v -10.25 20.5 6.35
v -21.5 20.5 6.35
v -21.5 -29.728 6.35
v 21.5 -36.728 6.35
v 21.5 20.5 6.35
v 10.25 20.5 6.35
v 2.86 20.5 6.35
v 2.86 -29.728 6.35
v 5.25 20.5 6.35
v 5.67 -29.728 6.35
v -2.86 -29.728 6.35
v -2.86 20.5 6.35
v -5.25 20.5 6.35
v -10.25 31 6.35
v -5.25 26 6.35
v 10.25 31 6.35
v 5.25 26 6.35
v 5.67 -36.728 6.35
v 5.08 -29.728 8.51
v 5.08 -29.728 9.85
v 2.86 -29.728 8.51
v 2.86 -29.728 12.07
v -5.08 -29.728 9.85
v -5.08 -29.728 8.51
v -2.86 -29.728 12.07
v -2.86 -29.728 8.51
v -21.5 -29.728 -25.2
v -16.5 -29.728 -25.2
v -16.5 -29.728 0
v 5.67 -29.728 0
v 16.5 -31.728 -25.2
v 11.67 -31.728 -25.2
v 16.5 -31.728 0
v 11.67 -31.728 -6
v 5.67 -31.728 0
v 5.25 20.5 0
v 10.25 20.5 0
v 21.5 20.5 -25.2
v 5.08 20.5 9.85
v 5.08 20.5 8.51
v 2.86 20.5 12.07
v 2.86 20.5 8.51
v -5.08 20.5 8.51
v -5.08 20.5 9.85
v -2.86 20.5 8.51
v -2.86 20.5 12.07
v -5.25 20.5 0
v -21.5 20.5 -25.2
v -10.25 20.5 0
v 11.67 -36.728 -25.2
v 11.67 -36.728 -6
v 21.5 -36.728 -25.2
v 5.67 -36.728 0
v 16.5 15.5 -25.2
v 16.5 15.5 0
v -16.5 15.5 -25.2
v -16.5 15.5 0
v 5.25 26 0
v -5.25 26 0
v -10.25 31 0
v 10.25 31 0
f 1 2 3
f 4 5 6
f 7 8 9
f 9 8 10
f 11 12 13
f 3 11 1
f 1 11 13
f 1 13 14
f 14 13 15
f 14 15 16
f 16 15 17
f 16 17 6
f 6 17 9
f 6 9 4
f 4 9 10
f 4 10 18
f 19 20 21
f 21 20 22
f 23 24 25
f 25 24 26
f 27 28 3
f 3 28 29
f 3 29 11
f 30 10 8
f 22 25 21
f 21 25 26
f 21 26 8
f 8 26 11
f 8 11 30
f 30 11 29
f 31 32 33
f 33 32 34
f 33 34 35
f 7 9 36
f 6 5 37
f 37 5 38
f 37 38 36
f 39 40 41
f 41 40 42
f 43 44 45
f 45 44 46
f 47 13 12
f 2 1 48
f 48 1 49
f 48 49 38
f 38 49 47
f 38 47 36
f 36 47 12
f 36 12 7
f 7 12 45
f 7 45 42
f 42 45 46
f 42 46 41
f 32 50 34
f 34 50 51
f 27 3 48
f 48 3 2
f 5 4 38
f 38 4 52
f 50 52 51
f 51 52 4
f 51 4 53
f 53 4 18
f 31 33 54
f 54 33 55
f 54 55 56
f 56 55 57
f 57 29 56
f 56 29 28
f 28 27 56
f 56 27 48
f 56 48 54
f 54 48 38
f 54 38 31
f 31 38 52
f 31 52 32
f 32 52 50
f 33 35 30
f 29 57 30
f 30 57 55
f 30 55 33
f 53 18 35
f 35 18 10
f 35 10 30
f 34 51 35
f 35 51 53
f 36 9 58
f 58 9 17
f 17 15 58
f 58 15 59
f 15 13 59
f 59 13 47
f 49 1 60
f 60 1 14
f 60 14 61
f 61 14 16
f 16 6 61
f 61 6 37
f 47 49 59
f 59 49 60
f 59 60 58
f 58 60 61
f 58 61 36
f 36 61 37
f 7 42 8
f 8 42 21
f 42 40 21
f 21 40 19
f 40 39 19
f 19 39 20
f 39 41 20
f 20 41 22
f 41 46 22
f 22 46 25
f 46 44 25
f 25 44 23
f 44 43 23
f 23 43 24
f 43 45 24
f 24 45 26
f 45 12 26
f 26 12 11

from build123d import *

# Parameters (mm, degrees)
BOSS_EXTRUDE1_DEPTH = 25.2
BOSS_EXTRUDE2_DEPTH = 6.35
BOSS_EXTRUDE3_START = 2
BOSS_EXTRUDE3_DEPTH = 5
SKETCH4_W           = 6
SKETCH4_H           = 2
BOSS_EXTRUDE4_DEPTH = 6.35
BOSS_EXTRUDE5_DEPTH = 50.228


with BuildPart() as part:
    # Sketch1 → Boss-Extrude1 (new body)
    with BuildSketch(Plane.XY):
        Polygon((-16.5, -29.728), (-16.5, 15.5), (16.5, 15.5), (16.5, -28.399762486), (16.5, -31.728), (11.67, -31.728), (11.67, -36.728), (21.5, -36.728), (21.5, 20.5), (-21.5, 20.5), (-21.5, -29.728), align=None)
    extrude(amount=-BOSS_EXTRUDE1_DEPTH)

    # Sketch2 → Boss-Extrude2 (add)
    with BuildSketch(Plane.XY):
        Polygon((-21.5, 20.5), (21.5, 20.5), (21.5, -29.728), (21.5, -36.728), (11.67, -36.728), (11.67, -29.728), (-21.5, -29.728), align=None)
    extrude(amount=BOSS_EXTRUDE2_DEPTH)

    # Sketch3 → Boss-Extrude3 (add)
    with BuildSketch(Plane.XZ.offset(29.728).offset(BOSS_EXTRUDE3_START)):
        Polygon((11.67, 6.35), (5.67, 6.35), (5.67, 0), (11.67, -6), align=None)
    extrude(amount=BOSS_EXTRUDE3_DEPTH)

    # Sketch4 → Boss-Extrude4 (add)
    with BuildSketch(Plane.XY.offset(6.35)):
        Polygon((-10.25, 20.5), (-5.25, 20.5), (-5.25, 26), (5.25, 26), (5.25, 20.5), (10.25, 20.5), (10.25, 31), (-10.25, 31), align=None)
        with Locations((8.67, -30.728)):
            Rectangle(SKETCH4_W, SKETCH4_H)
    extrude(amount=-BOSS_EXTRUDE4_DEPTH)

    # Sketch5 → Boss-Extrude5 (add)
    with BuildSketch(Plane(origin=(0, 20.5, 0), x_dir=(1, 0, 0), z_dir=(0, 1, 0))):
        Polygon((-2.86, -6.35), (-2.86, -8.51), (-5.08, -8.51), (-5.08, -9.85), (-2.86, -12.07), (2.86, -12.07), (5.08, -9.85), (5.08, -8.51), (2.86, -8.51), (2.86, -6.35), align=None)
    extrude(amount=-BOSS_EXTRUDE5_DEPTH)


solid = part.part
